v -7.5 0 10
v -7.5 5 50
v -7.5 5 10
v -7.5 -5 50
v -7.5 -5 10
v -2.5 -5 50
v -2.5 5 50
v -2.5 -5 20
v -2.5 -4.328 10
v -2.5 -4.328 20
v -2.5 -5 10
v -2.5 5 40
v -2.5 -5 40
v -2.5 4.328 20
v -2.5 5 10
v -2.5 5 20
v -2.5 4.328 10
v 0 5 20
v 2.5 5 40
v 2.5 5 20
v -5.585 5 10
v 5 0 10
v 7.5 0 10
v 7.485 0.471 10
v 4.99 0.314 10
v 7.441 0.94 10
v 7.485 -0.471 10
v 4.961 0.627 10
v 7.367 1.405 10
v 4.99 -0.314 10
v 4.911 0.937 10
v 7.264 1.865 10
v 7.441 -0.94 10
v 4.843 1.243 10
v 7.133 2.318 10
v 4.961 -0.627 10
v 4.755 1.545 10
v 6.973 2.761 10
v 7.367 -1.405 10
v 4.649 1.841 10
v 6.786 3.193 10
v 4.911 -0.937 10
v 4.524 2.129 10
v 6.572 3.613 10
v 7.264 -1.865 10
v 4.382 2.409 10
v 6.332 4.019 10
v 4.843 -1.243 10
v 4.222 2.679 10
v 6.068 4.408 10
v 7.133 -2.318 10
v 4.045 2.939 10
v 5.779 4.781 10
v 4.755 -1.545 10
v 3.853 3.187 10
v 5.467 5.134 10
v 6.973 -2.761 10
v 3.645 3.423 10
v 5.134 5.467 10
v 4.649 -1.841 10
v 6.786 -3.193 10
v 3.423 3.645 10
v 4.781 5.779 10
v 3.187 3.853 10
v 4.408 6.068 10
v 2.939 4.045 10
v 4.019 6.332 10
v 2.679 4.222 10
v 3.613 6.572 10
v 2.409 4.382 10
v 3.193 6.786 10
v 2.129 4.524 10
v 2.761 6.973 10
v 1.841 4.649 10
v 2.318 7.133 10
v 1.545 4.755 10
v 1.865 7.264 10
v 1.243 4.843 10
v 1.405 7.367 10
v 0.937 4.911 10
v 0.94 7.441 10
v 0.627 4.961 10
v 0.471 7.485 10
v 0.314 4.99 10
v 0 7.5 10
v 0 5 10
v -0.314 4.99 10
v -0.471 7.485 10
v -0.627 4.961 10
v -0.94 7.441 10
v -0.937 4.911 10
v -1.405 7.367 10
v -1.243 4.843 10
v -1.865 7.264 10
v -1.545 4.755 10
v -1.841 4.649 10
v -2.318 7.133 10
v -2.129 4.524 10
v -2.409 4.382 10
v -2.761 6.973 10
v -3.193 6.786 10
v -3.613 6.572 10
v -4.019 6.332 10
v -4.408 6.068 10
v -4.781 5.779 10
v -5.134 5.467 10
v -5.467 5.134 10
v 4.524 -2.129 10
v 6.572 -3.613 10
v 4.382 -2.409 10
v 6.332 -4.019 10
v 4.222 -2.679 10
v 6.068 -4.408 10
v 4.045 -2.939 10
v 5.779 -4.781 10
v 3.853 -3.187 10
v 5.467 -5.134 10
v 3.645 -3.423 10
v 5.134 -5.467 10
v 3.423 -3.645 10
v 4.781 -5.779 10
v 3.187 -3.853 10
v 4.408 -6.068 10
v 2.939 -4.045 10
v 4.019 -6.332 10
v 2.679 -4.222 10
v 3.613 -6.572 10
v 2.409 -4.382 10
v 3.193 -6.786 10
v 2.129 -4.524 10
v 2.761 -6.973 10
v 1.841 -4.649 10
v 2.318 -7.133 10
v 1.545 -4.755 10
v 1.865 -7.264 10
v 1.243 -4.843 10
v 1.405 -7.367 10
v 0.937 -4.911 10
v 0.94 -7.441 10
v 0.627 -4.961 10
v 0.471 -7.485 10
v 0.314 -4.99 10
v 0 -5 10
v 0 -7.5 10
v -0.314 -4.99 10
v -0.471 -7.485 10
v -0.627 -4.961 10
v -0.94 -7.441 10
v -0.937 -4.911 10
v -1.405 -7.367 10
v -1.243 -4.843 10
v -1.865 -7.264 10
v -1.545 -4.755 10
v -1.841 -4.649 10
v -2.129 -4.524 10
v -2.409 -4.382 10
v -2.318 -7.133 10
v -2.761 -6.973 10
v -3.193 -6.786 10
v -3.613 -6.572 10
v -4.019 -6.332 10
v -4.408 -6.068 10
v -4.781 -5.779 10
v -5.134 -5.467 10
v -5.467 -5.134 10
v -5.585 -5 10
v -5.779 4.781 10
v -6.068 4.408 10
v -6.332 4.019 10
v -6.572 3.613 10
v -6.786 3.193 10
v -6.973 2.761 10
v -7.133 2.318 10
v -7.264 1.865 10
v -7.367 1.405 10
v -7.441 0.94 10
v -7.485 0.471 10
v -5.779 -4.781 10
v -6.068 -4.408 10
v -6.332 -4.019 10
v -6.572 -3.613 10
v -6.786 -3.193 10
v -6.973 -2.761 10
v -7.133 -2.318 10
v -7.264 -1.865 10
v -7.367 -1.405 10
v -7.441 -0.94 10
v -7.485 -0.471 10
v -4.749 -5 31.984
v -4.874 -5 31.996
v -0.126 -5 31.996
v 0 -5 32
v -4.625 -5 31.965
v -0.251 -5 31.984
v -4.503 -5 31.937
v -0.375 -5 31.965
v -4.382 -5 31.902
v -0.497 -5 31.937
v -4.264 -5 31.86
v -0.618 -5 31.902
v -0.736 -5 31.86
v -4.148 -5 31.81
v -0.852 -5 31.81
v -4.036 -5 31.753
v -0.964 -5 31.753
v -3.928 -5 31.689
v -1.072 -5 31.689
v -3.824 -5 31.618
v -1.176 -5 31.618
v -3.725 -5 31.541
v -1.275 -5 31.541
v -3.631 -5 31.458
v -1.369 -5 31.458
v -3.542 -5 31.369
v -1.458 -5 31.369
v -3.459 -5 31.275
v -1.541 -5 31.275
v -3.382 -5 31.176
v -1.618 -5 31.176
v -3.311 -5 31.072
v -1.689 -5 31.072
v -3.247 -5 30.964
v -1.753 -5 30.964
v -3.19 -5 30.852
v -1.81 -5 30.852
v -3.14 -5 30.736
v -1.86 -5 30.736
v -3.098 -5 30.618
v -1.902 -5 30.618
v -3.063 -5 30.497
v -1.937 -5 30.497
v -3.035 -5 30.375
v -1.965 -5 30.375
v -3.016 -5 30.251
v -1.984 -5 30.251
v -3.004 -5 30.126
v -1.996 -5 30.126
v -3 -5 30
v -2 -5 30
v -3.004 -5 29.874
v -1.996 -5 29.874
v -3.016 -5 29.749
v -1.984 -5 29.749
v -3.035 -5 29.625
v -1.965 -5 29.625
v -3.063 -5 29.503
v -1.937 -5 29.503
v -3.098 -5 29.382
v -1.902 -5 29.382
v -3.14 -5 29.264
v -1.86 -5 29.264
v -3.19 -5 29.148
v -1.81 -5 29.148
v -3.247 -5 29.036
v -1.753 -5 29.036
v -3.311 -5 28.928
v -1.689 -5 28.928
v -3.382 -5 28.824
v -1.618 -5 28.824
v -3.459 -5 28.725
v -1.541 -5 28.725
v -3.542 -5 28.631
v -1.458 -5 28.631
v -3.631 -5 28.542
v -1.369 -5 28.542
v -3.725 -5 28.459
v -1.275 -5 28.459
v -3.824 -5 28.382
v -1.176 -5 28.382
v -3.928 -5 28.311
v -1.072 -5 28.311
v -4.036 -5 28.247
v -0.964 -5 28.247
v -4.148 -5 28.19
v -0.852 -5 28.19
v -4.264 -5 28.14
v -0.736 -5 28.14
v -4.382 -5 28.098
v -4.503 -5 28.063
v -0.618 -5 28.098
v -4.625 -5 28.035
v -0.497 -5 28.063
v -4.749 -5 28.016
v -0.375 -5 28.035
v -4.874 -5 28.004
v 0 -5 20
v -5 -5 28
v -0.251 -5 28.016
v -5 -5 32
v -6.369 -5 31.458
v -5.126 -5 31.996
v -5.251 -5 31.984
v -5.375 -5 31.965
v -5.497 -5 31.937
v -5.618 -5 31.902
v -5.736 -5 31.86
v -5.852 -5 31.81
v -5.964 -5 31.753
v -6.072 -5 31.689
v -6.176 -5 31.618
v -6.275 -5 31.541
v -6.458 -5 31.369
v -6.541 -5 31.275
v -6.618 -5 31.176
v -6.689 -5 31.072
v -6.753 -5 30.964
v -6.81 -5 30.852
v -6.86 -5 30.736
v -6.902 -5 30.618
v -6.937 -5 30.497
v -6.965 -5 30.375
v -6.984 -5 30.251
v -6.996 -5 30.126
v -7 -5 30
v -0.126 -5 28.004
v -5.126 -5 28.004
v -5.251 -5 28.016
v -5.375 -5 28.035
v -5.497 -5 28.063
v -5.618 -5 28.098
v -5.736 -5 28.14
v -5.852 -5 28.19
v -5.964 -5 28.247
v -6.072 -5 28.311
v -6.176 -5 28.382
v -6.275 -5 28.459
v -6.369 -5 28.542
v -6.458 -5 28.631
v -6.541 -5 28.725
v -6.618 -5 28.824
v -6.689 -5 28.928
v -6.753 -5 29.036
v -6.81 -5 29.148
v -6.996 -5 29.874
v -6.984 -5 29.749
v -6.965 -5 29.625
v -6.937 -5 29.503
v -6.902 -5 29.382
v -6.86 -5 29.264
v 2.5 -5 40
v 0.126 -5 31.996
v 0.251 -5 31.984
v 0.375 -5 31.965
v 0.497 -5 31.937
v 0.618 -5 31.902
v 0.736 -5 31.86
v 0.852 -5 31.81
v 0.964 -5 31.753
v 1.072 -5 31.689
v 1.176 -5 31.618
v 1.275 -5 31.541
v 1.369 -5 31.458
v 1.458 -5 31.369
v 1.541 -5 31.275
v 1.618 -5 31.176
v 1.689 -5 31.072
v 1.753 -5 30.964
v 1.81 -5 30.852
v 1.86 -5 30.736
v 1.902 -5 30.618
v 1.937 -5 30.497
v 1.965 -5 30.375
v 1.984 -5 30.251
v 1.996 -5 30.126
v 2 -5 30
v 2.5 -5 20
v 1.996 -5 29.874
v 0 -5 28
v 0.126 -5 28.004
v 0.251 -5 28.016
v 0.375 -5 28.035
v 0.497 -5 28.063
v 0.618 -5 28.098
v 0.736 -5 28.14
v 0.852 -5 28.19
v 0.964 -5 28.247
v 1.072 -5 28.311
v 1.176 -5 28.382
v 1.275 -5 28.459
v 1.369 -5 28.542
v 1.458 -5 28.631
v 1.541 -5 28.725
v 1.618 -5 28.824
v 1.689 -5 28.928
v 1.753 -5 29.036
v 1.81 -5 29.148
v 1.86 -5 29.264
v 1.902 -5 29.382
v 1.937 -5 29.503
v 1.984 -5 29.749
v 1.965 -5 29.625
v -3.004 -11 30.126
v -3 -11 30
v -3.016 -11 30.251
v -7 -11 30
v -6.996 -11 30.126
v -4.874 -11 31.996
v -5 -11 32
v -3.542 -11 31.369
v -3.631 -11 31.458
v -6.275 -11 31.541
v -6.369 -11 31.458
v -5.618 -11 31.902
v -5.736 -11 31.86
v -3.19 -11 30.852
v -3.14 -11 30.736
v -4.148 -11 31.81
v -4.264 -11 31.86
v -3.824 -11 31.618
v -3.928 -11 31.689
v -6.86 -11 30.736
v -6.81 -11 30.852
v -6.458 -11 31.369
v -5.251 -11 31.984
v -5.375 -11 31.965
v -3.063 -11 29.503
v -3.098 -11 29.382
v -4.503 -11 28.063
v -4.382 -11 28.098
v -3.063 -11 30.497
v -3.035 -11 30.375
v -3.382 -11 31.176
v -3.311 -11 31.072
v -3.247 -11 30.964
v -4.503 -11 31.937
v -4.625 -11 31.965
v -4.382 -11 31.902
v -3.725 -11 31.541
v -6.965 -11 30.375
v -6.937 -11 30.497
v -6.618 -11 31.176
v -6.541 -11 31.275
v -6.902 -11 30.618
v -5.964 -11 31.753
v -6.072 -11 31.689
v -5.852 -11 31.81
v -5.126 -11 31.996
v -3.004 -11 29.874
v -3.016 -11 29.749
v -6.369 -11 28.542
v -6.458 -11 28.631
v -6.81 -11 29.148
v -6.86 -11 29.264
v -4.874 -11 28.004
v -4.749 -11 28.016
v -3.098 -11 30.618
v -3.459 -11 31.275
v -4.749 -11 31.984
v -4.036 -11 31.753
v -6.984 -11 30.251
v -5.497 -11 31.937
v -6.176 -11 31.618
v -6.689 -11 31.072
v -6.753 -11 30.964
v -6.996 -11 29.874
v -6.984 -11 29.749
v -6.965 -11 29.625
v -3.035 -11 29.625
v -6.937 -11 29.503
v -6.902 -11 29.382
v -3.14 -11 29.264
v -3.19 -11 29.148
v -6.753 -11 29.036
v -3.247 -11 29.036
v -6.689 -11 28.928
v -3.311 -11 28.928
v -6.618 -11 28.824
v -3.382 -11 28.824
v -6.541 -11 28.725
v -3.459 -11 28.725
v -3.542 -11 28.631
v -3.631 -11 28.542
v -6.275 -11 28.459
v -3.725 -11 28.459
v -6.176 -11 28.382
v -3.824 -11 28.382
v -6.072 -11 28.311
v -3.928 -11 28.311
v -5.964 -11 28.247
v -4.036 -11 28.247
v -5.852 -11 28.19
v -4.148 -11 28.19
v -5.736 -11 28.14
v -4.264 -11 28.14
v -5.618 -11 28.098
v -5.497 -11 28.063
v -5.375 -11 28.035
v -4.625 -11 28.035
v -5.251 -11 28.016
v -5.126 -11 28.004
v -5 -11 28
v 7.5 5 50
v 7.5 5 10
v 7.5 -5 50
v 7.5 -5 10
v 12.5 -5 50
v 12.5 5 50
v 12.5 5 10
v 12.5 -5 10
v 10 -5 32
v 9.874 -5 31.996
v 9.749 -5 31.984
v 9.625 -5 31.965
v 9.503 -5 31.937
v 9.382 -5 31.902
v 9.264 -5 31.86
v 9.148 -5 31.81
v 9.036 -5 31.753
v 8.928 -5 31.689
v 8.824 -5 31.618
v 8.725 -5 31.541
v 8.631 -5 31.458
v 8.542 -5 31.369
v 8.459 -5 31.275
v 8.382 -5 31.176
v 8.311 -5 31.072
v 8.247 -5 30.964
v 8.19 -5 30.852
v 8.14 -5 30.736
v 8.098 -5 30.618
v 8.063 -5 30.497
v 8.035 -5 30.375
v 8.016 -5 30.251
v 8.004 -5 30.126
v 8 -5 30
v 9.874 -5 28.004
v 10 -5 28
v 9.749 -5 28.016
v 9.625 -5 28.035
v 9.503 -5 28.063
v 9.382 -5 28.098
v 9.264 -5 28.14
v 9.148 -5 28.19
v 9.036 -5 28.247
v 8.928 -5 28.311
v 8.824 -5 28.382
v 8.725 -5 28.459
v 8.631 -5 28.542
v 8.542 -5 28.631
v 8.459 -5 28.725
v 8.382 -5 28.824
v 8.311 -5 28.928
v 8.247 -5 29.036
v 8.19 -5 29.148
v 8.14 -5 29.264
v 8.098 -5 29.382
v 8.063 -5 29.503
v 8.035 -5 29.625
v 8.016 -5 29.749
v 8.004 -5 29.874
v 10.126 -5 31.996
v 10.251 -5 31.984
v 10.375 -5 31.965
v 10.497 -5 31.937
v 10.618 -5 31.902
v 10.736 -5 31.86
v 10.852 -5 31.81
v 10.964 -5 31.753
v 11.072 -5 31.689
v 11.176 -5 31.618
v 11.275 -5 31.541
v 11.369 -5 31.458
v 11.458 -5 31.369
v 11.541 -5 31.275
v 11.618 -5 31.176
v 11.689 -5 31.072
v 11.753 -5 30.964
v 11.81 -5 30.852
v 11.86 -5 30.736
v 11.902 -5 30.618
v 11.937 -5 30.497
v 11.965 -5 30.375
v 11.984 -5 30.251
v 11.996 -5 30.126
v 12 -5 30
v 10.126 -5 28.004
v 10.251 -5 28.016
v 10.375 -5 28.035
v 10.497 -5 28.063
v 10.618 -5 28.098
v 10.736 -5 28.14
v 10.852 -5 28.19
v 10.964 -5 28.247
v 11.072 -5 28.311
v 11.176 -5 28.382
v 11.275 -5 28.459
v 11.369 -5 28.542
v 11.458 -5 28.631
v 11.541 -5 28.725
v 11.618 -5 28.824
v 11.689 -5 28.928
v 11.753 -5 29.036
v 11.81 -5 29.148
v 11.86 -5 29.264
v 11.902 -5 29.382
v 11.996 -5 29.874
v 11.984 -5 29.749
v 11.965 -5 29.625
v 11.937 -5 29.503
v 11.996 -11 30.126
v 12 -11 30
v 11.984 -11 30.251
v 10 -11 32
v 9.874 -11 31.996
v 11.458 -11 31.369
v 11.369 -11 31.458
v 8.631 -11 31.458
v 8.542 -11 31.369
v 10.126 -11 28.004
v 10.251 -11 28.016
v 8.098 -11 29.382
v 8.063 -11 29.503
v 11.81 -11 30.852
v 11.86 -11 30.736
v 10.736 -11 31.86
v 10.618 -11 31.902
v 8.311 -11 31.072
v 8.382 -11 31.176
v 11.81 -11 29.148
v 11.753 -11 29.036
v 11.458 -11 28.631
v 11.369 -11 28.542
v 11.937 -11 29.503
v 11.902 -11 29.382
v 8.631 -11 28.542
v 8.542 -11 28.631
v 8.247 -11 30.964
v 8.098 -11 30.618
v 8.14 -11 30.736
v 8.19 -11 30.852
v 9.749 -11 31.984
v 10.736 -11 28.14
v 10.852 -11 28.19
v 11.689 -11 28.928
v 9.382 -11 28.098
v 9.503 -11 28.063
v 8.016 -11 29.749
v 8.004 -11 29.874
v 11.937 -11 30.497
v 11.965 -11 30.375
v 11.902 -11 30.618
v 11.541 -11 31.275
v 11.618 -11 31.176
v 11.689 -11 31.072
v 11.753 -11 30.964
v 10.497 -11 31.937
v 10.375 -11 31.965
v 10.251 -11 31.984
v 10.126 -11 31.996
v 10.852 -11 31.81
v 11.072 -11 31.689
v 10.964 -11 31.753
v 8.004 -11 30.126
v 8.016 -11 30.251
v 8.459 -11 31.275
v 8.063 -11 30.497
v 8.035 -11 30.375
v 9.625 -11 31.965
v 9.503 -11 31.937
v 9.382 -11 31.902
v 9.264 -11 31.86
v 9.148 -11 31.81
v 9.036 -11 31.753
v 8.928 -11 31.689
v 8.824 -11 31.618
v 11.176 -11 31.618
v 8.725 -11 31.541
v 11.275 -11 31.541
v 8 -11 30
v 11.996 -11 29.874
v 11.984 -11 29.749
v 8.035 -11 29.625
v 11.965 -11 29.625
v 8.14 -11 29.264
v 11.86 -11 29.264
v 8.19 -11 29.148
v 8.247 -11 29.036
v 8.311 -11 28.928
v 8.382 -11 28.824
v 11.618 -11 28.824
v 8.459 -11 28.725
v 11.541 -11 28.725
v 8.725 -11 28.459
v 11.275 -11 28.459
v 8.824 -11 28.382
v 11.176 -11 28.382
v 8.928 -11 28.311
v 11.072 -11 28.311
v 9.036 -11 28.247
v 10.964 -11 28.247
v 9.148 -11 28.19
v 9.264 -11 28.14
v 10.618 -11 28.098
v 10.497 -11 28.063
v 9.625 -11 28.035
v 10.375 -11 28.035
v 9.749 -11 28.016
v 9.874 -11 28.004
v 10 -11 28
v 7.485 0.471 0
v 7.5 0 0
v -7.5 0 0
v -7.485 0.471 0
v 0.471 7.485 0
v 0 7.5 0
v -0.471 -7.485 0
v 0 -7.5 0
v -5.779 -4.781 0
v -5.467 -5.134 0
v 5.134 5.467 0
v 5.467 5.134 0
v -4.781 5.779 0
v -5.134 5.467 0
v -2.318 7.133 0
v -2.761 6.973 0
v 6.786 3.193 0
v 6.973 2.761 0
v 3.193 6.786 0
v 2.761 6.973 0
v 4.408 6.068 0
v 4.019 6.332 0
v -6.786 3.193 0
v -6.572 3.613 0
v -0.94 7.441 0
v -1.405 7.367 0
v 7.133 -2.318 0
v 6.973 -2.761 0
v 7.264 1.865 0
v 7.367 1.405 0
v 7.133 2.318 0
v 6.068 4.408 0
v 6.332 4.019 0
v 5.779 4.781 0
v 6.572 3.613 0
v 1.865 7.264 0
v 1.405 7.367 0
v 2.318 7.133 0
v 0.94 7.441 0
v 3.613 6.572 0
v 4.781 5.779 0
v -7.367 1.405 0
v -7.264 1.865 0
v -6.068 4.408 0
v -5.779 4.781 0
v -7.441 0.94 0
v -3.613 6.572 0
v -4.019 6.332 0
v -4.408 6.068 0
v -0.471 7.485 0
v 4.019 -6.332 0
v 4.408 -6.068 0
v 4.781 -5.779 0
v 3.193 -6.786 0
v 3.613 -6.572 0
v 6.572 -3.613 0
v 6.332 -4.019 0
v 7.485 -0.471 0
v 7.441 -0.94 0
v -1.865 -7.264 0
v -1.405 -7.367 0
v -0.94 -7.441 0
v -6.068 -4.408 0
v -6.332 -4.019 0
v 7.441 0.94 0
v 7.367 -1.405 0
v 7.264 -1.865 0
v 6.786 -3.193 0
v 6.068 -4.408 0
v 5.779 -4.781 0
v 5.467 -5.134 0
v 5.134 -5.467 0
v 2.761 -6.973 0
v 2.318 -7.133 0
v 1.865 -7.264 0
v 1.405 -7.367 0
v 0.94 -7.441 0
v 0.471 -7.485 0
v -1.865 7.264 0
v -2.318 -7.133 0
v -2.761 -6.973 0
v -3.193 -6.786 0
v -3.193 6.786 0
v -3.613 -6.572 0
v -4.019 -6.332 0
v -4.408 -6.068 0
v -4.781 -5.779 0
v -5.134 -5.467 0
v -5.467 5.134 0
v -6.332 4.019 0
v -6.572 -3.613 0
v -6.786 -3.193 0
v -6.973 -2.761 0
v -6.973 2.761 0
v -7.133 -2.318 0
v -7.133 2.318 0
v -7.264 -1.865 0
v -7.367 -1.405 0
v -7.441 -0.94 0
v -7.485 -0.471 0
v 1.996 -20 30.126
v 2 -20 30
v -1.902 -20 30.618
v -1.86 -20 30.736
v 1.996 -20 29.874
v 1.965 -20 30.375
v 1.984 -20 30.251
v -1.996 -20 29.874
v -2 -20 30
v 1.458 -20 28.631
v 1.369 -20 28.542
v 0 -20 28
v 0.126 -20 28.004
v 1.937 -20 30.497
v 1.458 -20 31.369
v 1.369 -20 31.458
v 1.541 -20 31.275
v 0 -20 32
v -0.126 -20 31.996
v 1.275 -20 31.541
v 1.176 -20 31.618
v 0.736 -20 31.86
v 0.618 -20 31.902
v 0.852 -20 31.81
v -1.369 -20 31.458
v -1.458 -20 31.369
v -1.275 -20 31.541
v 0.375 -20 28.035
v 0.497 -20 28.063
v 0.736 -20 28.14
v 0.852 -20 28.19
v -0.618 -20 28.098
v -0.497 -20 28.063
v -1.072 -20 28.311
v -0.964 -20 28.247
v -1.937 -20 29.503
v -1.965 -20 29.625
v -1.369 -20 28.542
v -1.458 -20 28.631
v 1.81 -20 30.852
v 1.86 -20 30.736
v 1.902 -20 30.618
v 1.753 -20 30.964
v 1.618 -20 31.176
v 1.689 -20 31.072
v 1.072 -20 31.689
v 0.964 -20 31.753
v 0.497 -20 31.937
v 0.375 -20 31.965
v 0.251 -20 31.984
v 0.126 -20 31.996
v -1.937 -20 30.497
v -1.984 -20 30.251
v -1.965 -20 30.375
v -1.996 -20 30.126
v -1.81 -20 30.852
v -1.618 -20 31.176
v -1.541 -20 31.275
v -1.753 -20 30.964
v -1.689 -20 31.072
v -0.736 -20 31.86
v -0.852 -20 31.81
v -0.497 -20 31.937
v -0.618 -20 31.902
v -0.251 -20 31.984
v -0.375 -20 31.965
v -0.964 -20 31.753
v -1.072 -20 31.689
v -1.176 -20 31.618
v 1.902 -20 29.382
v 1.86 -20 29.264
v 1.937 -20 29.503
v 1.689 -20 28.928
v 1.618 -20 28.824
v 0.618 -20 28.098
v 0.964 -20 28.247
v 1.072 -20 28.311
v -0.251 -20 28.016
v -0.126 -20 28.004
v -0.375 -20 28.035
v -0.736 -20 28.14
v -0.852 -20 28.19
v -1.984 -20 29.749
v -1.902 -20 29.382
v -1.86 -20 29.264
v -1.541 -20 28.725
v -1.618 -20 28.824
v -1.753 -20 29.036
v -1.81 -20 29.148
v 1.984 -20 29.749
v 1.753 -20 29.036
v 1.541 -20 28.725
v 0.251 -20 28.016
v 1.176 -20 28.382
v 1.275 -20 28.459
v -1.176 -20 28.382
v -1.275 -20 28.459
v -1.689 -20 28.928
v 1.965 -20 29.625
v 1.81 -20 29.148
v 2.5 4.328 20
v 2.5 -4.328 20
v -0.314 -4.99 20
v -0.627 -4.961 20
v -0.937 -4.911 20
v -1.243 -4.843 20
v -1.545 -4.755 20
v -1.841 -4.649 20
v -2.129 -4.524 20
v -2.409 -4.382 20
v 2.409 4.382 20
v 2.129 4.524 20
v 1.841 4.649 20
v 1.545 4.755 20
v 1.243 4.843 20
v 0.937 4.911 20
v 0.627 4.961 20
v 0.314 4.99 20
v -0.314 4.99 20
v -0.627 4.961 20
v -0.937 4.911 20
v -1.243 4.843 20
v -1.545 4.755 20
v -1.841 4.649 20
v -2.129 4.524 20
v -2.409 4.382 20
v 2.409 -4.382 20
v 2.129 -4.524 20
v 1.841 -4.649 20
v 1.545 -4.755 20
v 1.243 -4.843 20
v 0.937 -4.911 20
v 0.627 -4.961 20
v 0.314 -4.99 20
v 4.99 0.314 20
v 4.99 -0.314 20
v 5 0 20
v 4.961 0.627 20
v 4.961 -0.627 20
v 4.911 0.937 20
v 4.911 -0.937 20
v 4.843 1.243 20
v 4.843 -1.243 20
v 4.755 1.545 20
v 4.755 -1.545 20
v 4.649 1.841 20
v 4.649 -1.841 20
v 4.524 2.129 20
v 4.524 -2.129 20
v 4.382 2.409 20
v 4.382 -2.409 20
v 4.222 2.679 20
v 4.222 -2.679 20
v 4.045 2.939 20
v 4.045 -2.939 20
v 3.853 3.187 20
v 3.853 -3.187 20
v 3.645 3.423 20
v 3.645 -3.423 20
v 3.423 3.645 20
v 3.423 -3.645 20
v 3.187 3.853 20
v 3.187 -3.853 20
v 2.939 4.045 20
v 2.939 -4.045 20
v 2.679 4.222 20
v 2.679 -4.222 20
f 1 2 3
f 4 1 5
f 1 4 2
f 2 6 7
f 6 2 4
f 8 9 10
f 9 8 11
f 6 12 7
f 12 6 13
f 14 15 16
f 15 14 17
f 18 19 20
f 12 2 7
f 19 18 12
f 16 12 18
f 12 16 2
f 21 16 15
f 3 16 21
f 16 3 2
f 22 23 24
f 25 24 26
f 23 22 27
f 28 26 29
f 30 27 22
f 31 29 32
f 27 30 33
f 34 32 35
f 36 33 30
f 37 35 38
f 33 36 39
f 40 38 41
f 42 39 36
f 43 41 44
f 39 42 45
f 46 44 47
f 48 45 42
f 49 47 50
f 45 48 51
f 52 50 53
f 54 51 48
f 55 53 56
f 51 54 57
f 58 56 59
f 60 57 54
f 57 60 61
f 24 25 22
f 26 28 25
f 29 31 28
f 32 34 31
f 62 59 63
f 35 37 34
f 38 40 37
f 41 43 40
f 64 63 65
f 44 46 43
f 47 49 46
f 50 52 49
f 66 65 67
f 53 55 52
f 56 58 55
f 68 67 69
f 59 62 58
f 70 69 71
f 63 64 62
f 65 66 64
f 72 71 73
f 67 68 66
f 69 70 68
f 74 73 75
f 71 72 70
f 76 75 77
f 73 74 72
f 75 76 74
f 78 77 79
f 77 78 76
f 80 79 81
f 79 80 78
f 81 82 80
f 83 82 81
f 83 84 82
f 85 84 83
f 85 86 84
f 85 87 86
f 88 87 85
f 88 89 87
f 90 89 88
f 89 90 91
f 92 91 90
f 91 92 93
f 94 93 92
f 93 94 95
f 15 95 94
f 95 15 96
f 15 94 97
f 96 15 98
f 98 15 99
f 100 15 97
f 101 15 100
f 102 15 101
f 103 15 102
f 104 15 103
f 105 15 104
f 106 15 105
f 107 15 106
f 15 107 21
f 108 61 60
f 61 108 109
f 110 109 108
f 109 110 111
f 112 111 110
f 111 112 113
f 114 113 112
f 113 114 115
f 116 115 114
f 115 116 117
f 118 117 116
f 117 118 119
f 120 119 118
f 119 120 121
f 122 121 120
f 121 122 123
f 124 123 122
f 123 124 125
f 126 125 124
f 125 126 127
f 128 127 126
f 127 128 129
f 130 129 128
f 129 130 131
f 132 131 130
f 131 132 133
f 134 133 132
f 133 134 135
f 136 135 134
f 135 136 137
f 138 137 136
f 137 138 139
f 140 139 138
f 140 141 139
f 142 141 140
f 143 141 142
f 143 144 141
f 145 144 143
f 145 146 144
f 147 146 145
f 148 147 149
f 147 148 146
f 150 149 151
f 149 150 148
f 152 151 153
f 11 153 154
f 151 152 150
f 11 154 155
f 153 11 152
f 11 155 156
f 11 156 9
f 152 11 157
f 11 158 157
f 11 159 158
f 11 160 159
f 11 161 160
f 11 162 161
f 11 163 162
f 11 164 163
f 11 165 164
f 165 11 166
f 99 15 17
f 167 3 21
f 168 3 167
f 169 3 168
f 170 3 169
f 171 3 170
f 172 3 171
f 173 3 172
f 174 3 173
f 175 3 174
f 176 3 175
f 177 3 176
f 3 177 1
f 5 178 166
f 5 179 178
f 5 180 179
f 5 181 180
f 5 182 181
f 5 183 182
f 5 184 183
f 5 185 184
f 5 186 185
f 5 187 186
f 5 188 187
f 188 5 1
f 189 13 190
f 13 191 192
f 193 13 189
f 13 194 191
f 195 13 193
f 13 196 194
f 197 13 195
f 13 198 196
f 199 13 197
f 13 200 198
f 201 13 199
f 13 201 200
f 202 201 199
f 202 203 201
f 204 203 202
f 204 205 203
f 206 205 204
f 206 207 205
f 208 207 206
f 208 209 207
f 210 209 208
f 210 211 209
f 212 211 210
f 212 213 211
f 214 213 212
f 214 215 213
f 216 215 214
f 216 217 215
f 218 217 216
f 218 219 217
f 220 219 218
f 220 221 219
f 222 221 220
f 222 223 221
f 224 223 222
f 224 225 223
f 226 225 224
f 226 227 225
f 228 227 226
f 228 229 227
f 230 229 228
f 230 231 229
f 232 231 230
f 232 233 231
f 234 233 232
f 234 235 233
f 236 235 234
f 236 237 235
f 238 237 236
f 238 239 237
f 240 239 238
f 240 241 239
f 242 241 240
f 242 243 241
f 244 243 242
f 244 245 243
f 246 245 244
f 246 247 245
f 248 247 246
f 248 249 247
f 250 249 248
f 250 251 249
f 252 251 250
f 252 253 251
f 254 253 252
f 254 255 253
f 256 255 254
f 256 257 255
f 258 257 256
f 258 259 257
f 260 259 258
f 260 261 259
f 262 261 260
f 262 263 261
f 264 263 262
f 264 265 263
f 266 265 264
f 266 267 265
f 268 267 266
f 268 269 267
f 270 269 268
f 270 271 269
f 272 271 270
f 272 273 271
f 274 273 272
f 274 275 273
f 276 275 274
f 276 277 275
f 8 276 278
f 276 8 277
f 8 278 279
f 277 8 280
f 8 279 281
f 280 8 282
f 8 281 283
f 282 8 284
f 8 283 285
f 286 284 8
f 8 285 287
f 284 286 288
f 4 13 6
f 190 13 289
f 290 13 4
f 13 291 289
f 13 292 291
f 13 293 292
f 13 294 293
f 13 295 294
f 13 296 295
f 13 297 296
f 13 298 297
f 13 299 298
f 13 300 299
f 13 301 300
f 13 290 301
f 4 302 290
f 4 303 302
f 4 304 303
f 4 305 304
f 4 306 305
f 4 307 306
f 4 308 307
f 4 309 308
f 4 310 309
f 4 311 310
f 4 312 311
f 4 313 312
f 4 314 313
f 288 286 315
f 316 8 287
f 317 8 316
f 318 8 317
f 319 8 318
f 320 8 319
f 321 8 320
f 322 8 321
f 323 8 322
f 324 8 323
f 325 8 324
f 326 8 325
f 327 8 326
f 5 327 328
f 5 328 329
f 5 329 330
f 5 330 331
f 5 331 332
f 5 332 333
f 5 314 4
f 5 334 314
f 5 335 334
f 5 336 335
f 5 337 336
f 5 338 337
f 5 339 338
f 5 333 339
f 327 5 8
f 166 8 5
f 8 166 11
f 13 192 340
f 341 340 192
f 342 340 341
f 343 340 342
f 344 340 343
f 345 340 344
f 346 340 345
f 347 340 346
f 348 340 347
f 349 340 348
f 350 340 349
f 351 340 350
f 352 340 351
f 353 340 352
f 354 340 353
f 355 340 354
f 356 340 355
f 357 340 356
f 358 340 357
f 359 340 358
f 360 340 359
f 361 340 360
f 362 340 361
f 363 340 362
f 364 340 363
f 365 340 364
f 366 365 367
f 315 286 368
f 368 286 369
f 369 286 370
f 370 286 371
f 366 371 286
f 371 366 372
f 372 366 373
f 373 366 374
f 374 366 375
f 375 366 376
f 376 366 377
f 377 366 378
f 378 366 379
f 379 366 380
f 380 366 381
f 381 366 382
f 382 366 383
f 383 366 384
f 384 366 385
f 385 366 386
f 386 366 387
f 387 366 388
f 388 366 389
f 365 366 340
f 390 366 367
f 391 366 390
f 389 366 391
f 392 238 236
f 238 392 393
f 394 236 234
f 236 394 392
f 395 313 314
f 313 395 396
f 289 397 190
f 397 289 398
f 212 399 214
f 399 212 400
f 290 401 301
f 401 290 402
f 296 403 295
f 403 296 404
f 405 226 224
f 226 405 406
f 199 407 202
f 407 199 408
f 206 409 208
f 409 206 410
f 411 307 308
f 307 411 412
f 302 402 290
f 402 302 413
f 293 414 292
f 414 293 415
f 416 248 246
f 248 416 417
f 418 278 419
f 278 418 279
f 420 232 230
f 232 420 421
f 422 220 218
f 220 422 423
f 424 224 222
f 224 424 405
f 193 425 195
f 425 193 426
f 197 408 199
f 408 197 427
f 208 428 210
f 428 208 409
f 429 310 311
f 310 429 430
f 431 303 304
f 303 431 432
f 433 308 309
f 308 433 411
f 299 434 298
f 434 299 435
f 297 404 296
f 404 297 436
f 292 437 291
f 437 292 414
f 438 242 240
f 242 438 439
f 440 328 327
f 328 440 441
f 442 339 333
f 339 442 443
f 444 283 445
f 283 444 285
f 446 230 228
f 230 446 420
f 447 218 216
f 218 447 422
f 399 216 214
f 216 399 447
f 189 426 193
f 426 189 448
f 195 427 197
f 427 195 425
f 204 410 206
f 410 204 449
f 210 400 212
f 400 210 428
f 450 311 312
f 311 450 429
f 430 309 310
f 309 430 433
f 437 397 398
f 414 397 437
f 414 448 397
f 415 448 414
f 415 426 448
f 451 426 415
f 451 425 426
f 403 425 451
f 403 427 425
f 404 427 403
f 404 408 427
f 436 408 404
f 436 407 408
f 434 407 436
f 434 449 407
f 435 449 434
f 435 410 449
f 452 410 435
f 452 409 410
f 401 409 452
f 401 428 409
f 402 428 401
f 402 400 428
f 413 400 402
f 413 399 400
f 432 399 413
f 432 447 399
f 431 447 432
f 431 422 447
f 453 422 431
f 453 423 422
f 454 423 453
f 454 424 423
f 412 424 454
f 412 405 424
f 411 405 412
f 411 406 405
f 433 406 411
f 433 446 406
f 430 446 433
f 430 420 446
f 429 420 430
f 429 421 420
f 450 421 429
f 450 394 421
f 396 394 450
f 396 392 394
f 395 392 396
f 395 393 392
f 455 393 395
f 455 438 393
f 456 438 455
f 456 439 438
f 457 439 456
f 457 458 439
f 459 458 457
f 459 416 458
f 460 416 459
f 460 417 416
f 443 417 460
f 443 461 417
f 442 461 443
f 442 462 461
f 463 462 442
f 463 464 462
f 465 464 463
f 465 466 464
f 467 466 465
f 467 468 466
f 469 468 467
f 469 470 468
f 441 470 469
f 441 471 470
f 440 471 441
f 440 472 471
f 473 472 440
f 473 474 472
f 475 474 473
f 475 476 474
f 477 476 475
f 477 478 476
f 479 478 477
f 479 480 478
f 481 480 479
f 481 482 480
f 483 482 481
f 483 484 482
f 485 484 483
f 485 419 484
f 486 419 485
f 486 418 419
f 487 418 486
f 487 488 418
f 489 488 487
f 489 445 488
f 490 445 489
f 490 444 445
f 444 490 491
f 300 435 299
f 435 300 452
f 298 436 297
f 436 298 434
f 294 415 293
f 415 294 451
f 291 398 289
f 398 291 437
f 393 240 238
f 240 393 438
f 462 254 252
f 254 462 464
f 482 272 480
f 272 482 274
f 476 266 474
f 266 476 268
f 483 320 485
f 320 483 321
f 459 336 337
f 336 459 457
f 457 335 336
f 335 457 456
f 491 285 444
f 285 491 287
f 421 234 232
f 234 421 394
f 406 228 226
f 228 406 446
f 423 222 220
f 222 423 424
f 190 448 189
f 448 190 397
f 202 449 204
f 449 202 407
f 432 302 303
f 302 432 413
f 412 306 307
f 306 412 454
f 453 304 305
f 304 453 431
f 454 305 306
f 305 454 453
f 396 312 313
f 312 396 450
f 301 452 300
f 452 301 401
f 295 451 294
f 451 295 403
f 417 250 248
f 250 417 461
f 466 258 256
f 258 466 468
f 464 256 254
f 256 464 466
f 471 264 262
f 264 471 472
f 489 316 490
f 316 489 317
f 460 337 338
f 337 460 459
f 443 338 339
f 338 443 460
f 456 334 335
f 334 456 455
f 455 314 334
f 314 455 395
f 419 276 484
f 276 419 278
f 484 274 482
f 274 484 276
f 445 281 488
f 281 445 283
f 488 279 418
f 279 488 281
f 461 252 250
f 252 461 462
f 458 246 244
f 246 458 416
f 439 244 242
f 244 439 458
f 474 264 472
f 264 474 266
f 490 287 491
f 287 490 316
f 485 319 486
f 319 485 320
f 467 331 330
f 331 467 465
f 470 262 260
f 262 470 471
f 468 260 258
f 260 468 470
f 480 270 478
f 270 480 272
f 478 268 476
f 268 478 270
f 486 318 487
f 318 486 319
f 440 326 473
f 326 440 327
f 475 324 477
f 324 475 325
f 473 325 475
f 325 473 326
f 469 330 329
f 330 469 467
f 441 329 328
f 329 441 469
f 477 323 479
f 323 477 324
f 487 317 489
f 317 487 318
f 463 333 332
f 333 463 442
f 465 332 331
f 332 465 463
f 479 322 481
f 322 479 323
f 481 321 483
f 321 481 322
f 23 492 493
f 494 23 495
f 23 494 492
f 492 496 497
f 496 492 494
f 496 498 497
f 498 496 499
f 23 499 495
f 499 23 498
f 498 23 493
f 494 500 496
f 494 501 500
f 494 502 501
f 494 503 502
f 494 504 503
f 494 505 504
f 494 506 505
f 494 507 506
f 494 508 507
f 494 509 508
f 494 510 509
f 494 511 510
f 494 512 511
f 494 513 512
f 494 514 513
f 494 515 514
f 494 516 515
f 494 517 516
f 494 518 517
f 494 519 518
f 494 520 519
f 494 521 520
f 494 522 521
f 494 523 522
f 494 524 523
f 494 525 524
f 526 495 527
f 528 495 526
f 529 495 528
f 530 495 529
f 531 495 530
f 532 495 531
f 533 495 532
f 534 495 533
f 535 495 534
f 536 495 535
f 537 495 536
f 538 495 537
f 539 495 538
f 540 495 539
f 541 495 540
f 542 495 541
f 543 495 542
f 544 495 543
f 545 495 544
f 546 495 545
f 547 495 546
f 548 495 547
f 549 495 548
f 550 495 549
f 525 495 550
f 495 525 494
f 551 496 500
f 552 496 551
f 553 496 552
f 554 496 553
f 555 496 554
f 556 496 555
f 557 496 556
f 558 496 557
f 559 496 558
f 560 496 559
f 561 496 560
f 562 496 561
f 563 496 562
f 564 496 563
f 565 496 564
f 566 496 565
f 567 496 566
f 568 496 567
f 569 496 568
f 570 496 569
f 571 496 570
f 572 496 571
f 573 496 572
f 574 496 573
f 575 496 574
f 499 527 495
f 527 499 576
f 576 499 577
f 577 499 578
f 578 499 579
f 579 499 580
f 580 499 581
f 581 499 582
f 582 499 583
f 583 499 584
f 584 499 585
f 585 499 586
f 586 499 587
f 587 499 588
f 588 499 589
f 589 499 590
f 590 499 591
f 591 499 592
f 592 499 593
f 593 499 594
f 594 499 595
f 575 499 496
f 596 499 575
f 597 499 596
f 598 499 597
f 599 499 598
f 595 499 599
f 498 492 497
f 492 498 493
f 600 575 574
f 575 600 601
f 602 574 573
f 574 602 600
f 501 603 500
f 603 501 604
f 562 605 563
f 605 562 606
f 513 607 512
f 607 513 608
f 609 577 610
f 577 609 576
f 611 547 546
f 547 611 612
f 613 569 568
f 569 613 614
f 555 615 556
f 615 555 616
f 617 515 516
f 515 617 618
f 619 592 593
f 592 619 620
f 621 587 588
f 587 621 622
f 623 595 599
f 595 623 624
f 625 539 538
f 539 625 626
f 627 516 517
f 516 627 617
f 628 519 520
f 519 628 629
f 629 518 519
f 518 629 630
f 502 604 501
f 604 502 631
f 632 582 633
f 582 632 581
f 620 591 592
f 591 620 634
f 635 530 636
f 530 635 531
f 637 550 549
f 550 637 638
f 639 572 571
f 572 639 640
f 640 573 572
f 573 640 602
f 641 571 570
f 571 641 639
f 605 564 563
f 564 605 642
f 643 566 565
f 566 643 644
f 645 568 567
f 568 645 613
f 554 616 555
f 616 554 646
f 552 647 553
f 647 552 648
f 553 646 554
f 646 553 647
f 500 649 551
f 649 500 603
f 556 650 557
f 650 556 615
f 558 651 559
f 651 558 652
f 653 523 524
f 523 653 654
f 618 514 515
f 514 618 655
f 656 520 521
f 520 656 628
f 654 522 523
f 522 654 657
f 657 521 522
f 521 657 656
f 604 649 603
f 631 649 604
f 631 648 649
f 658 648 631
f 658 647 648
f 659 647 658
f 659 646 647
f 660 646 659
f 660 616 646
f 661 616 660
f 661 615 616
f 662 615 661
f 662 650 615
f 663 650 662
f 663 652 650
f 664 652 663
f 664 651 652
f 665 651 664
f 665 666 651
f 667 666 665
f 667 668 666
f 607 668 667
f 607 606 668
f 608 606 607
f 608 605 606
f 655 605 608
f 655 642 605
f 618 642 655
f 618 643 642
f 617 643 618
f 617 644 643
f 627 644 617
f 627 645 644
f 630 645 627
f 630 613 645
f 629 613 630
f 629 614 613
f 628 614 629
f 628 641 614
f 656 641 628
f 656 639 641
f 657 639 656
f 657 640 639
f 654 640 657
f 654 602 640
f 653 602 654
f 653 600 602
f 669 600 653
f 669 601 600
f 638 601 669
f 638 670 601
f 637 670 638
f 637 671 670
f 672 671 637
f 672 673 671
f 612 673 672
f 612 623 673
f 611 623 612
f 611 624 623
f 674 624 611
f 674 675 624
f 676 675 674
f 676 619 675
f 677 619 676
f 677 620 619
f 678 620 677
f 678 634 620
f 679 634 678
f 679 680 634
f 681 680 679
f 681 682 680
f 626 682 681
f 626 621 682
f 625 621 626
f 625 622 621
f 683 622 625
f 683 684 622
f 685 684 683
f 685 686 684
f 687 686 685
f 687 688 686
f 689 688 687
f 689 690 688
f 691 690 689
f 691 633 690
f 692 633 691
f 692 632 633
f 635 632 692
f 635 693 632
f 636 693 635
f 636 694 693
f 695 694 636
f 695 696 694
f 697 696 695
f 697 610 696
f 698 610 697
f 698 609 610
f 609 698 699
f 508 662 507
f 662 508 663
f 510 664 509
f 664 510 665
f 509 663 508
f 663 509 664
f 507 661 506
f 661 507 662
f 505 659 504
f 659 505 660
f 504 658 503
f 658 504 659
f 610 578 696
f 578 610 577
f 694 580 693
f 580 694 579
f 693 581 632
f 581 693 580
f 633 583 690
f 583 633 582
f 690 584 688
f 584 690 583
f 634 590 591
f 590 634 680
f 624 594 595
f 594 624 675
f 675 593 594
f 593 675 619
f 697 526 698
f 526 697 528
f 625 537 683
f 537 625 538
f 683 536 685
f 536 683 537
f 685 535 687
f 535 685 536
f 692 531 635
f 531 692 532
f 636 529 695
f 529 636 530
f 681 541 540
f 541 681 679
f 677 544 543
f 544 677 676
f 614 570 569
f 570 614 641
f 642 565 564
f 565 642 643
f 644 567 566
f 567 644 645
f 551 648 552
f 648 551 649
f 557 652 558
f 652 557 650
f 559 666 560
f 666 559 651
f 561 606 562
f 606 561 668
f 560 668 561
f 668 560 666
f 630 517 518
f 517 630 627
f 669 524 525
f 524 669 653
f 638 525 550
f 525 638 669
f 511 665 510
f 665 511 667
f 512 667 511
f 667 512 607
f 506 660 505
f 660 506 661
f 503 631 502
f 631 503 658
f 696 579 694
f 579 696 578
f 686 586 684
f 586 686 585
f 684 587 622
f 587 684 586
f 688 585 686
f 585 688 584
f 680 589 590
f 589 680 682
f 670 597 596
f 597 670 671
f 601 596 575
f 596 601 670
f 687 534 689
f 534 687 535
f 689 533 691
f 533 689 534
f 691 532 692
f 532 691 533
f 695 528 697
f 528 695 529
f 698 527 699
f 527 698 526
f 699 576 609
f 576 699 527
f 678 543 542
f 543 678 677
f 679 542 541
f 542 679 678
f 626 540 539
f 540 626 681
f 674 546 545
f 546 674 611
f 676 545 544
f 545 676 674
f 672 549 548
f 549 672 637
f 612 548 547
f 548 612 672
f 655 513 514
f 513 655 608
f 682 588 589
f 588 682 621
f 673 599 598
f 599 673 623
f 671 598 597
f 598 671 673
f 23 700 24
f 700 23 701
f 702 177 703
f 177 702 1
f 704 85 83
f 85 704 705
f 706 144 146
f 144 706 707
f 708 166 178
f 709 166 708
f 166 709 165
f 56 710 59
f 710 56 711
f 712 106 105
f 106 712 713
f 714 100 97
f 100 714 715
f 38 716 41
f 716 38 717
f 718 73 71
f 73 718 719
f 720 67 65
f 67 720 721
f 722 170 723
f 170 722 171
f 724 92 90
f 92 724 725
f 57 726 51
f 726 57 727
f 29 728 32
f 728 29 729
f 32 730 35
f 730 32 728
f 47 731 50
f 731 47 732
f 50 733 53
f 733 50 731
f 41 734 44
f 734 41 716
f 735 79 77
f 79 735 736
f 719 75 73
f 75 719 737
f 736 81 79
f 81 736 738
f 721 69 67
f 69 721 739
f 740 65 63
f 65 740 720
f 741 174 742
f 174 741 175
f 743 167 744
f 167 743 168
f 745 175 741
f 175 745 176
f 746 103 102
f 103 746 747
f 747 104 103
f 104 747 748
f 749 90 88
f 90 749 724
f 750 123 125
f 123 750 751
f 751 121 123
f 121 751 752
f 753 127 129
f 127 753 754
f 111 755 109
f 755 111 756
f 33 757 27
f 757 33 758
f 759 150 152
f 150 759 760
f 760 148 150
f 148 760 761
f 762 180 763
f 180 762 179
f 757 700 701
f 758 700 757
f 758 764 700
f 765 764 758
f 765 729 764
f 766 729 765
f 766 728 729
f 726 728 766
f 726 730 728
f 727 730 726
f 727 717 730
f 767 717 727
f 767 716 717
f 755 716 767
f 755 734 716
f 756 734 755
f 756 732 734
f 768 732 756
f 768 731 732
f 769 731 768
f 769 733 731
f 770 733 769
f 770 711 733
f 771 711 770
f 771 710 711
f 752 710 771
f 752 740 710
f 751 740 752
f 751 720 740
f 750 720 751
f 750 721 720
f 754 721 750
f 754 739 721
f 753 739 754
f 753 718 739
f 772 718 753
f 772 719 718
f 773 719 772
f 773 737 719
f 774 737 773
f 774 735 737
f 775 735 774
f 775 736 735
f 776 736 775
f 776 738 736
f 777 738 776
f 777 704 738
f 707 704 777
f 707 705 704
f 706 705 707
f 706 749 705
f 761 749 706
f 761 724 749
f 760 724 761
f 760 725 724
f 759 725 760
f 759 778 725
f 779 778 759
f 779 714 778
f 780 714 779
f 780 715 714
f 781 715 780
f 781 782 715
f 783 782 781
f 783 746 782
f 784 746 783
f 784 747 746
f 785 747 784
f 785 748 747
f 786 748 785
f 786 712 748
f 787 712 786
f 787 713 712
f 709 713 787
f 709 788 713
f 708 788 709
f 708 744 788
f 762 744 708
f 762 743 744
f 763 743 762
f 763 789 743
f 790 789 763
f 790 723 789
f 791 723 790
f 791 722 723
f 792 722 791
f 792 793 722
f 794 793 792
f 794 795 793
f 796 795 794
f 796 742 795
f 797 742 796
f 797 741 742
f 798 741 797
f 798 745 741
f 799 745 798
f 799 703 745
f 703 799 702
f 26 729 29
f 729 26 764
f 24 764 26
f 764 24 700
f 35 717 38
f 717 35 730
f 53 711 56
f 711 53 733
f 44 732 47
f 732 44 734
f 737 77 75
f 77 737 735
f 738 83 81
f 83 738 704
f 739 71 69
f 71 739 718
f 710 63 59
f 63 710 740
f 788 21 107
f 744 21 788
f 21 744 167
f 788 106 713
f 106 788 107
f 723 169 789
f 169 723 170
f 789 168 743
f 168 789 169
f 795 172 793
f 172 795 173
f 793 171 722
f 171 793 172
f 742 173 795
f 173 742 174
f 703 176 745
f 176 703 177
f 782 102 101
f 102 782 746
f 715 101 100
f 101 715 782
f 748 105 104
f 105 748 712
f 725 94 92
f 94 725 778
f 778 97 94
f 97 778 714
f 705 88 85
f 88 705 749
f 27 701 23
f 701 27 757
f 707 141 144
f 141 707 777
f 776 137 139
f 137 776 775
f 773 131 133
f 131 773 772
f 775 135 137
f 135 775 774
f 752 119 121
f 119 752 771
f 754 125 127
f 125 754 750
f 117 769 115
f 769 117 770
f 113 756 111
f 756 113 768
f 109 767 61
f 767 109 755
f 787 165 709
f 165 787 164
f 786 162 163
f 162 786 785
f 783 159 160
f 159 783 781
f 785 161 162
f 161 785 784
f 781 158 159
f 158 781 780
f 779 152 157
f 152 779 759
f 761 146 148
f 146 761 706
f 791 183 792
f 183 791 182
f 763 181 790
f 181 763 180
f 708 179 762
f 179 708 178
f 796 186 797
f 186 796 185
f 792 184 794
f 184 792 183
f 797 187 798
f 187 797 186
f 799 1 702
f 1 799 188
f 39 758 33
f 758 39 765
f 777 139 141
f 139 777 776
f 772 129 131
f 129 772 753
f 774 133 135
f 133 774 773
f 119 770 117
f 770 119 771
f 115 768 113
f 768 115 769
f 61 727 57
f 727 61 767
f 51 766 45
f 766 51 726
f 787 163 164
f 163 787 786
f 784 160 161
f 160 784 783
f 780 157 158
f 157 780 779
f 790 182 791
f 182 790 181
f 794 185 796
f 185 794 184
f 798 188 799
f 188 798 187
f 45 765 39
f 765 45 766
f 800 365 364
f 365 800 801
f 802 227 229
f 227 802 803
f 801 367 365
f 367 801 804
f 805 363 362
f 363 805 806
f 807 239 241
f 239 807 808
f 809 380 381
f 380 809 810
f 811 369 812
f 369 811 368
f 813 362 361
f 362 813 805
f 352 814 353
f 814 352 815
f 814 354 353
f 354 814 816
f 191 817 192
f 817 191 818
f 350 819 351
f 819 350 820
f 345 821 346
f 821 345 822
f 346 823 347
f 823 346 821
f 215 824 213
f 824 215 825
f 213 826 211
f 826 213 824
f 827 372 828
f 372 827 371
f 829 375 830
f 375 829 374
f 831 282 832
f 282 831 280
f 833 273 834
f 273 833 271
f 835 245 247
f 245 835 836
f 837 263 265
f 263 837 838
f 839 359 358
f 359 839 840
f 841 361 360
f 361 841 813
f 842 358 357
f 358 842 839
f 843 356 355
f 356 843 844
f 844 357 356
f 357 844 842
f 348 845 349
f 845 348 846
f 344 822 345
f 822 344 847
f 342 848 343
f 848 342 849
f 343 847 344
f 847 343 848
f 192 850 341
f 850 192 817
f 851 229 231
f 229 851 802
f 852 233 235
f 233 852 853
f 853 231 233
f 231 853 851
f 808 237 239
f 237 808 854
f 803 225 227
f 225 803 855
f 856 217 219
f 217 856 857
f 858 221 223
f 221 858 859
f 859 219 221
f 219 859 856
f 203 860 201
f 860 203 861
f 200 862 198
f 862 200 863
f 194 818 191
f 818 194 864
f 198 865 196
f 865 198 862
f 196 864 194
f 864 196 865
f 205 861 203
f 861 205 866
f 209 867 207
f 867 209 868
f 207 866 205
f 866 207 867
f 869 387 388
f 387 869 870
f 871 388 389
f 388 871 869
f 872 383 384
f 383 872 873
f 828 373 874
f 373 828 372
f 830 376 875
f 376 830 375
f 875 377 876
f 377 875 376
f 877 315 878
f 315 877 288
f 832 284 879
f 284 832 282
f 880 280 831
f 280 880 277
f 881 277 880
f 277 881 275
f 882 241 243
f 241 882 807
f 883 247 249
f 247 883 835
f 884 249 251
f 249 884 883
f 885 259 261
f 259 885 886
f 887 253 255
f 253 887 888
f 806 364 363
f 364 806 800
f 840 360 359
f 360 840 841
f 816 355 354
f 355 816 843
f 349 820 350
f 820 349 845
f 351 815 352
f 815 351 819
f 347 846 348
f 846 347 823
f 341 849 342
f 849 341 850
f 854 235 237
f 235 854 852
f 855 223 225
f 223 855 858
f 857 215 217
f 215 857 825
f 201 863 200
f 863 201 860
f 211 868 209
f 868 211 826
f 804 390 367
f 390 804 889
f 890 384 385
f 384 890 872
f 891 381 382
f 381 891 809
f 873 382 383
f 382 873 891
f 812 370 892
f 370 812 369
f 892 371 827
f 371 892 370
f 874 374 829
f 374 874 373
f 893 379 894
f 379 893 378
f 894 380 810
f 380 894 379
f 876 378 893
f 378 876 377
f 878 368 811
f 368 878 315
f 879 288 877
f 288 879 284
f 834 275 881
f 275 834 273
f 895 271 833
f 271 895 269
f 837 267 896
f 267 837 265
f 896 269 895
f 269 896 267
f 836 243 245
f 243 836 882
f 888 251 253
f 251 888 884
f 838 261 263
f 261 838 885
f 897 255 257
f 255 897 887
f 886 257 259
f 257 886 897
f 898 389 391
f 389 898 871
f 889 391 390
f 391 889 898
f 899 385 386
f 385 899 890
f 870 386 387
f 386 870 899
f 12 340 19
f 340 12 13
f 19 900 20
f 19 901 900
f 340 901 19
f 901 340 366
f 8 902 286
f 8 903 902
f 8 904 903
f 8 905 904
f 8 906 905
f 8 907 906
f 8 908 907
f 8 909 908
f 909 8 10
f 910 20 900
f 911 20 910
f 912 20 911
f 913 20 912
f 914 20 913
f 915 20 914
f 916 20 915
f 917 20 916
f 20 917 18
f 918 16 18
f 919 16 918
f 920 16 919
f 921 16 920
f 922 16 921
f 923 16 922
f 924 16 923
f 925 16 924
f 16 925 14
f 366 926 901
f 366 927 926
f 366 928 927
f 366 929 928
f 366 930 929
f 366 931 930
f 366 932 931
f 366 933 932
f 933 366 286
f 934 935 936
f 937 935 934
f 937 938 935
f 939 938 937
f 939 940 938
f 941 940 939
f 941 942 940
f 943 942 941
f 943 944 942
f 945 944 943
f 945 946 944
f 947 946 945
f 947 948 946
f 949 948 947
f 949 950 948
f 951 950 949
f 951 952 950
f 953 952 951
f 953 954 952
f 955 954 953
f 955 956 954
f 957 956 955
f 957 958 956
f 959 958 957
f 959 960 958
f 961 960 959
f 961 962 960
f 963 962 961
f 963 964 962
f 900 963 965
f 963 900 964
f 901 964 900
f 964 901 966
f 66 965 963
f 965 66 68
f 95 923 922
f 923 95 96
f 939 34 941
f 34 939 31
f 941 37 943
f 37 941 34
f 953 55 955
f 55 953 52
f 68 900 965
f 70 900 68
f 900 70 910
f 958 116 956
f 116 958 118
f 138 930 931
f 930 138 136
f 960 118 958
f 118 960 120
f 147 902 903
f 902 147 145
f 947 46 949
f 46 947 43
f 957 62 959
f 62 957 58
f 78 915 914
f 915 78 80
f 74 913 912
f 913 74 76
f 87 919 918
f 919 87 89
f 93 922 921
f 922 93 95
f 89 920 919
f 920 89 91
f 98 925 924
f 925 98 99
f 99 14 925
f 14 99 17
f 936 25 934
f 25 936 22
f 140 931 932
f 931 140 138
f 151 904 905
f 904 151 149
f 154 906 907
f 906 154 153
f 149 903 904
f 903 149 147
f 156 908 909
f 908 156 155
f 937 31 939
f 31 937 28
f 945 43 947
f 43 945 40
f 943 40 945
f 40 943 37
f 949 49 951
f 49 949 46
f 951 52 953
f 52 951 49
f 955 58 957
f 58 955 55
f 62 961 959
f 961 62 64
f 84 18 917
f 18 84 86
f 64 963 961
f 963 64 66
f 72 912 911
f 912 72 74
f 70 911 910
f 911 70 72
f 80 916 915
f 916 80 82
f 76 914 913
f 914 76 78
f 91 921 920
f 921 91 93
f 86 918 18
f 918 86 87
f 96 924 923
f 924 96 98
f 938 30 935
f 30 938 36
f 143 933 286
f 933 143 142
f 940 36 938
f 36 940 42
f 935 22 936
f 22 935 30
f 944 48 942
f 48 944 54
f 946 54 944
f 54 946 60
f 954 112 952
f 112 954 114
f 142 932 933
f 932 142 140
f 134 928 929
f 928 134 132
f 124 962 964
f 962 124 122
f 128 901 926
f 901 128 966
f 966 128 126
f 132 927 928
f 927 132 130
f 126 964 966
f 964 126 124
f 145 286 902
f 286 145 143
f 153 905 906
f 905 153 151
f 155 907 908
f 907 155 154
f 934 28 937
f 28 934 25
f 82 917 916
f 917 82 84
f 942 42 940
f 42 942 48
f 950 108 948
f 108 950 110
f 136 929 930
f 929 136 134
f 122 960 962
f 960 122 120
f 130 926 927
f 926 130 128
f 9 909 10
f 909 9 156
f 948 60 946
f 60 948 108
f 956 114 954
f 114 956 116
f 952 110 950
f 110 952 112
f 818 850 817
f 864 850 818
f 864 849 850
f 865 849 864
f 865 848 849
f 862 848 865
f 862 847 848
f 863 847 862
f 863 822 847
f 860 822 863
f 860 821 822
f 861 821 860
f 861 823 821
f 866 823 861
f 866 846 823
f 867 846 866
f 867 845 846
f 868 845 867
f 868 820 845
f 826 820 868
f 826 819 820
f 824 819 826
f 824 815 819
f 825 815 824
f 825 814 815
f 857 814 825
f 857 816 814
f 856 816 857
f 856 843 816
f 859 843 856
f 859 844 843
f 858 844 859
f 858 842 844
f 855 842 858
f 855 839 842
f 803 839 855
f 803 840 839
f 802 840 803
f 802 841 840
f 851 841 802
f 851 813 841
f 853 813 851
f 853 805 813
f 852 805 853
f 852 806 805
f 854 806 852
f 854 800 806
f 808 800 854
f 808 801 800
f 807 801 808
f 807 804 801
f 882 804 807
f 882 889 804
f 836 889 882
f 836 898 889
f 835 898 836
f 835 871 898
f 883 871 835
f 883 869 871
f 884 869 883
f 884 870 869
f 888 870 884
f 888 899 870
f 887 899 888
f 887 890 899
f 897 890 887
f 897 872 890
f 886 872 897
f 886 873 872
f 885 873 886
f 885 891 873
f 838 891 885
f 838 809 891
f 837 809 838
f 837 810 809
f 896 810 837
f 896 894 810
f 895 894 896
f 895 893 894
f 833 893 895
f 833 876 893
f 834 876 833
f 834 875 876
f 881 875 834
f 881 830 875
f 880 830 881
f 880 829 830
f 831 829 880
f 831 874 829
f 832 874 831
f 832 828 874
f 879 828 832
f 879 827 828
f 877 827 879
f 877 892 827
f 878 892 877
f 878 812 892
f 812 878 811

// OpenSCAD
$fn = 100; // Smoothness

// Parameters
fork_arm_length = 40;
fork_arm_thickness = 5;
fork_arm_width = 10;
fork_gap = 10;
fork_base_diameter = 15;
fork_base_height = 10;
hole_diameter = 4;

tongue_length = 20;
tongue_width = fork_gap;
tongue_thickness = fork_arm_thickness;
tongue_hole_offset = 5;
tongue_shaft_diameter = 10;
tongue_shaft_height = 20;

pin_diameter = hole_diameter;
pin_length = fork_gap + 2 * fork_arm_thickness;

// Fork End Connector
module fork_end_connector() {
    // Base cylinder
    translate([0, 0, 0])
        cylinder(h = fork_base_height, d = fork_base_diameter);

    // Arms
    for (side = [-1, 1]) {
        translate([side * (fork_gap + fork_arm_thickness) / 2, -fork_arm_width / 2, fork_base_height])
            cube([fork_arm_thickness, fork_arm_width, fork_arm_length]);
        
        // Holes in arms
        translate([side * (fork_gap + fork_arm_thickness) / 2 + fork_arm_thickness / 2, 0, fork_base_height + fork_arm_length / 2])
            rotate([90, 0, 0])
                cylinder(h = fork_arm_width + 1, d = hole_diameter);
    }
}

// Tongue End Connector
module tongue_end_connector() {
    // Tongue
    translate([-tongue_thickness / 2, -tongue_width / 2, fork_base_height + fork_arm_length / 2 - tongue_length / 2])
        cube([tongue_thickness, tongue_width, tongue_length]);

    // Holes
    for (side = [-1, 1]) {
        translate([0, side * tongue_width / 2, fork_base_height + fork_arm_length / 2])
            rotate([90, 0, 0])
                cylinder(h = tongue_thickness + 1, d = hole_diameter);
    }

    // Shaft
    translate([0, 0, fork_base_height + fork_arm_length / 2 - tongue_length / 2 - tongue_shaft_height])
        cylinder(h = tongue_shaft_height, d = tongue_shaft_diameter);
}

// Pin
module pin() {
    translate([0, 0, fork_base_height + fork_arm_length / 2])
        rotate([90, 0, 0])
            cylinder(h = pin_length, d = pin_diameter);
}

// Assembly
union() {
    fork_end_connector();
    tongue_end_connector();
    pin();
}
